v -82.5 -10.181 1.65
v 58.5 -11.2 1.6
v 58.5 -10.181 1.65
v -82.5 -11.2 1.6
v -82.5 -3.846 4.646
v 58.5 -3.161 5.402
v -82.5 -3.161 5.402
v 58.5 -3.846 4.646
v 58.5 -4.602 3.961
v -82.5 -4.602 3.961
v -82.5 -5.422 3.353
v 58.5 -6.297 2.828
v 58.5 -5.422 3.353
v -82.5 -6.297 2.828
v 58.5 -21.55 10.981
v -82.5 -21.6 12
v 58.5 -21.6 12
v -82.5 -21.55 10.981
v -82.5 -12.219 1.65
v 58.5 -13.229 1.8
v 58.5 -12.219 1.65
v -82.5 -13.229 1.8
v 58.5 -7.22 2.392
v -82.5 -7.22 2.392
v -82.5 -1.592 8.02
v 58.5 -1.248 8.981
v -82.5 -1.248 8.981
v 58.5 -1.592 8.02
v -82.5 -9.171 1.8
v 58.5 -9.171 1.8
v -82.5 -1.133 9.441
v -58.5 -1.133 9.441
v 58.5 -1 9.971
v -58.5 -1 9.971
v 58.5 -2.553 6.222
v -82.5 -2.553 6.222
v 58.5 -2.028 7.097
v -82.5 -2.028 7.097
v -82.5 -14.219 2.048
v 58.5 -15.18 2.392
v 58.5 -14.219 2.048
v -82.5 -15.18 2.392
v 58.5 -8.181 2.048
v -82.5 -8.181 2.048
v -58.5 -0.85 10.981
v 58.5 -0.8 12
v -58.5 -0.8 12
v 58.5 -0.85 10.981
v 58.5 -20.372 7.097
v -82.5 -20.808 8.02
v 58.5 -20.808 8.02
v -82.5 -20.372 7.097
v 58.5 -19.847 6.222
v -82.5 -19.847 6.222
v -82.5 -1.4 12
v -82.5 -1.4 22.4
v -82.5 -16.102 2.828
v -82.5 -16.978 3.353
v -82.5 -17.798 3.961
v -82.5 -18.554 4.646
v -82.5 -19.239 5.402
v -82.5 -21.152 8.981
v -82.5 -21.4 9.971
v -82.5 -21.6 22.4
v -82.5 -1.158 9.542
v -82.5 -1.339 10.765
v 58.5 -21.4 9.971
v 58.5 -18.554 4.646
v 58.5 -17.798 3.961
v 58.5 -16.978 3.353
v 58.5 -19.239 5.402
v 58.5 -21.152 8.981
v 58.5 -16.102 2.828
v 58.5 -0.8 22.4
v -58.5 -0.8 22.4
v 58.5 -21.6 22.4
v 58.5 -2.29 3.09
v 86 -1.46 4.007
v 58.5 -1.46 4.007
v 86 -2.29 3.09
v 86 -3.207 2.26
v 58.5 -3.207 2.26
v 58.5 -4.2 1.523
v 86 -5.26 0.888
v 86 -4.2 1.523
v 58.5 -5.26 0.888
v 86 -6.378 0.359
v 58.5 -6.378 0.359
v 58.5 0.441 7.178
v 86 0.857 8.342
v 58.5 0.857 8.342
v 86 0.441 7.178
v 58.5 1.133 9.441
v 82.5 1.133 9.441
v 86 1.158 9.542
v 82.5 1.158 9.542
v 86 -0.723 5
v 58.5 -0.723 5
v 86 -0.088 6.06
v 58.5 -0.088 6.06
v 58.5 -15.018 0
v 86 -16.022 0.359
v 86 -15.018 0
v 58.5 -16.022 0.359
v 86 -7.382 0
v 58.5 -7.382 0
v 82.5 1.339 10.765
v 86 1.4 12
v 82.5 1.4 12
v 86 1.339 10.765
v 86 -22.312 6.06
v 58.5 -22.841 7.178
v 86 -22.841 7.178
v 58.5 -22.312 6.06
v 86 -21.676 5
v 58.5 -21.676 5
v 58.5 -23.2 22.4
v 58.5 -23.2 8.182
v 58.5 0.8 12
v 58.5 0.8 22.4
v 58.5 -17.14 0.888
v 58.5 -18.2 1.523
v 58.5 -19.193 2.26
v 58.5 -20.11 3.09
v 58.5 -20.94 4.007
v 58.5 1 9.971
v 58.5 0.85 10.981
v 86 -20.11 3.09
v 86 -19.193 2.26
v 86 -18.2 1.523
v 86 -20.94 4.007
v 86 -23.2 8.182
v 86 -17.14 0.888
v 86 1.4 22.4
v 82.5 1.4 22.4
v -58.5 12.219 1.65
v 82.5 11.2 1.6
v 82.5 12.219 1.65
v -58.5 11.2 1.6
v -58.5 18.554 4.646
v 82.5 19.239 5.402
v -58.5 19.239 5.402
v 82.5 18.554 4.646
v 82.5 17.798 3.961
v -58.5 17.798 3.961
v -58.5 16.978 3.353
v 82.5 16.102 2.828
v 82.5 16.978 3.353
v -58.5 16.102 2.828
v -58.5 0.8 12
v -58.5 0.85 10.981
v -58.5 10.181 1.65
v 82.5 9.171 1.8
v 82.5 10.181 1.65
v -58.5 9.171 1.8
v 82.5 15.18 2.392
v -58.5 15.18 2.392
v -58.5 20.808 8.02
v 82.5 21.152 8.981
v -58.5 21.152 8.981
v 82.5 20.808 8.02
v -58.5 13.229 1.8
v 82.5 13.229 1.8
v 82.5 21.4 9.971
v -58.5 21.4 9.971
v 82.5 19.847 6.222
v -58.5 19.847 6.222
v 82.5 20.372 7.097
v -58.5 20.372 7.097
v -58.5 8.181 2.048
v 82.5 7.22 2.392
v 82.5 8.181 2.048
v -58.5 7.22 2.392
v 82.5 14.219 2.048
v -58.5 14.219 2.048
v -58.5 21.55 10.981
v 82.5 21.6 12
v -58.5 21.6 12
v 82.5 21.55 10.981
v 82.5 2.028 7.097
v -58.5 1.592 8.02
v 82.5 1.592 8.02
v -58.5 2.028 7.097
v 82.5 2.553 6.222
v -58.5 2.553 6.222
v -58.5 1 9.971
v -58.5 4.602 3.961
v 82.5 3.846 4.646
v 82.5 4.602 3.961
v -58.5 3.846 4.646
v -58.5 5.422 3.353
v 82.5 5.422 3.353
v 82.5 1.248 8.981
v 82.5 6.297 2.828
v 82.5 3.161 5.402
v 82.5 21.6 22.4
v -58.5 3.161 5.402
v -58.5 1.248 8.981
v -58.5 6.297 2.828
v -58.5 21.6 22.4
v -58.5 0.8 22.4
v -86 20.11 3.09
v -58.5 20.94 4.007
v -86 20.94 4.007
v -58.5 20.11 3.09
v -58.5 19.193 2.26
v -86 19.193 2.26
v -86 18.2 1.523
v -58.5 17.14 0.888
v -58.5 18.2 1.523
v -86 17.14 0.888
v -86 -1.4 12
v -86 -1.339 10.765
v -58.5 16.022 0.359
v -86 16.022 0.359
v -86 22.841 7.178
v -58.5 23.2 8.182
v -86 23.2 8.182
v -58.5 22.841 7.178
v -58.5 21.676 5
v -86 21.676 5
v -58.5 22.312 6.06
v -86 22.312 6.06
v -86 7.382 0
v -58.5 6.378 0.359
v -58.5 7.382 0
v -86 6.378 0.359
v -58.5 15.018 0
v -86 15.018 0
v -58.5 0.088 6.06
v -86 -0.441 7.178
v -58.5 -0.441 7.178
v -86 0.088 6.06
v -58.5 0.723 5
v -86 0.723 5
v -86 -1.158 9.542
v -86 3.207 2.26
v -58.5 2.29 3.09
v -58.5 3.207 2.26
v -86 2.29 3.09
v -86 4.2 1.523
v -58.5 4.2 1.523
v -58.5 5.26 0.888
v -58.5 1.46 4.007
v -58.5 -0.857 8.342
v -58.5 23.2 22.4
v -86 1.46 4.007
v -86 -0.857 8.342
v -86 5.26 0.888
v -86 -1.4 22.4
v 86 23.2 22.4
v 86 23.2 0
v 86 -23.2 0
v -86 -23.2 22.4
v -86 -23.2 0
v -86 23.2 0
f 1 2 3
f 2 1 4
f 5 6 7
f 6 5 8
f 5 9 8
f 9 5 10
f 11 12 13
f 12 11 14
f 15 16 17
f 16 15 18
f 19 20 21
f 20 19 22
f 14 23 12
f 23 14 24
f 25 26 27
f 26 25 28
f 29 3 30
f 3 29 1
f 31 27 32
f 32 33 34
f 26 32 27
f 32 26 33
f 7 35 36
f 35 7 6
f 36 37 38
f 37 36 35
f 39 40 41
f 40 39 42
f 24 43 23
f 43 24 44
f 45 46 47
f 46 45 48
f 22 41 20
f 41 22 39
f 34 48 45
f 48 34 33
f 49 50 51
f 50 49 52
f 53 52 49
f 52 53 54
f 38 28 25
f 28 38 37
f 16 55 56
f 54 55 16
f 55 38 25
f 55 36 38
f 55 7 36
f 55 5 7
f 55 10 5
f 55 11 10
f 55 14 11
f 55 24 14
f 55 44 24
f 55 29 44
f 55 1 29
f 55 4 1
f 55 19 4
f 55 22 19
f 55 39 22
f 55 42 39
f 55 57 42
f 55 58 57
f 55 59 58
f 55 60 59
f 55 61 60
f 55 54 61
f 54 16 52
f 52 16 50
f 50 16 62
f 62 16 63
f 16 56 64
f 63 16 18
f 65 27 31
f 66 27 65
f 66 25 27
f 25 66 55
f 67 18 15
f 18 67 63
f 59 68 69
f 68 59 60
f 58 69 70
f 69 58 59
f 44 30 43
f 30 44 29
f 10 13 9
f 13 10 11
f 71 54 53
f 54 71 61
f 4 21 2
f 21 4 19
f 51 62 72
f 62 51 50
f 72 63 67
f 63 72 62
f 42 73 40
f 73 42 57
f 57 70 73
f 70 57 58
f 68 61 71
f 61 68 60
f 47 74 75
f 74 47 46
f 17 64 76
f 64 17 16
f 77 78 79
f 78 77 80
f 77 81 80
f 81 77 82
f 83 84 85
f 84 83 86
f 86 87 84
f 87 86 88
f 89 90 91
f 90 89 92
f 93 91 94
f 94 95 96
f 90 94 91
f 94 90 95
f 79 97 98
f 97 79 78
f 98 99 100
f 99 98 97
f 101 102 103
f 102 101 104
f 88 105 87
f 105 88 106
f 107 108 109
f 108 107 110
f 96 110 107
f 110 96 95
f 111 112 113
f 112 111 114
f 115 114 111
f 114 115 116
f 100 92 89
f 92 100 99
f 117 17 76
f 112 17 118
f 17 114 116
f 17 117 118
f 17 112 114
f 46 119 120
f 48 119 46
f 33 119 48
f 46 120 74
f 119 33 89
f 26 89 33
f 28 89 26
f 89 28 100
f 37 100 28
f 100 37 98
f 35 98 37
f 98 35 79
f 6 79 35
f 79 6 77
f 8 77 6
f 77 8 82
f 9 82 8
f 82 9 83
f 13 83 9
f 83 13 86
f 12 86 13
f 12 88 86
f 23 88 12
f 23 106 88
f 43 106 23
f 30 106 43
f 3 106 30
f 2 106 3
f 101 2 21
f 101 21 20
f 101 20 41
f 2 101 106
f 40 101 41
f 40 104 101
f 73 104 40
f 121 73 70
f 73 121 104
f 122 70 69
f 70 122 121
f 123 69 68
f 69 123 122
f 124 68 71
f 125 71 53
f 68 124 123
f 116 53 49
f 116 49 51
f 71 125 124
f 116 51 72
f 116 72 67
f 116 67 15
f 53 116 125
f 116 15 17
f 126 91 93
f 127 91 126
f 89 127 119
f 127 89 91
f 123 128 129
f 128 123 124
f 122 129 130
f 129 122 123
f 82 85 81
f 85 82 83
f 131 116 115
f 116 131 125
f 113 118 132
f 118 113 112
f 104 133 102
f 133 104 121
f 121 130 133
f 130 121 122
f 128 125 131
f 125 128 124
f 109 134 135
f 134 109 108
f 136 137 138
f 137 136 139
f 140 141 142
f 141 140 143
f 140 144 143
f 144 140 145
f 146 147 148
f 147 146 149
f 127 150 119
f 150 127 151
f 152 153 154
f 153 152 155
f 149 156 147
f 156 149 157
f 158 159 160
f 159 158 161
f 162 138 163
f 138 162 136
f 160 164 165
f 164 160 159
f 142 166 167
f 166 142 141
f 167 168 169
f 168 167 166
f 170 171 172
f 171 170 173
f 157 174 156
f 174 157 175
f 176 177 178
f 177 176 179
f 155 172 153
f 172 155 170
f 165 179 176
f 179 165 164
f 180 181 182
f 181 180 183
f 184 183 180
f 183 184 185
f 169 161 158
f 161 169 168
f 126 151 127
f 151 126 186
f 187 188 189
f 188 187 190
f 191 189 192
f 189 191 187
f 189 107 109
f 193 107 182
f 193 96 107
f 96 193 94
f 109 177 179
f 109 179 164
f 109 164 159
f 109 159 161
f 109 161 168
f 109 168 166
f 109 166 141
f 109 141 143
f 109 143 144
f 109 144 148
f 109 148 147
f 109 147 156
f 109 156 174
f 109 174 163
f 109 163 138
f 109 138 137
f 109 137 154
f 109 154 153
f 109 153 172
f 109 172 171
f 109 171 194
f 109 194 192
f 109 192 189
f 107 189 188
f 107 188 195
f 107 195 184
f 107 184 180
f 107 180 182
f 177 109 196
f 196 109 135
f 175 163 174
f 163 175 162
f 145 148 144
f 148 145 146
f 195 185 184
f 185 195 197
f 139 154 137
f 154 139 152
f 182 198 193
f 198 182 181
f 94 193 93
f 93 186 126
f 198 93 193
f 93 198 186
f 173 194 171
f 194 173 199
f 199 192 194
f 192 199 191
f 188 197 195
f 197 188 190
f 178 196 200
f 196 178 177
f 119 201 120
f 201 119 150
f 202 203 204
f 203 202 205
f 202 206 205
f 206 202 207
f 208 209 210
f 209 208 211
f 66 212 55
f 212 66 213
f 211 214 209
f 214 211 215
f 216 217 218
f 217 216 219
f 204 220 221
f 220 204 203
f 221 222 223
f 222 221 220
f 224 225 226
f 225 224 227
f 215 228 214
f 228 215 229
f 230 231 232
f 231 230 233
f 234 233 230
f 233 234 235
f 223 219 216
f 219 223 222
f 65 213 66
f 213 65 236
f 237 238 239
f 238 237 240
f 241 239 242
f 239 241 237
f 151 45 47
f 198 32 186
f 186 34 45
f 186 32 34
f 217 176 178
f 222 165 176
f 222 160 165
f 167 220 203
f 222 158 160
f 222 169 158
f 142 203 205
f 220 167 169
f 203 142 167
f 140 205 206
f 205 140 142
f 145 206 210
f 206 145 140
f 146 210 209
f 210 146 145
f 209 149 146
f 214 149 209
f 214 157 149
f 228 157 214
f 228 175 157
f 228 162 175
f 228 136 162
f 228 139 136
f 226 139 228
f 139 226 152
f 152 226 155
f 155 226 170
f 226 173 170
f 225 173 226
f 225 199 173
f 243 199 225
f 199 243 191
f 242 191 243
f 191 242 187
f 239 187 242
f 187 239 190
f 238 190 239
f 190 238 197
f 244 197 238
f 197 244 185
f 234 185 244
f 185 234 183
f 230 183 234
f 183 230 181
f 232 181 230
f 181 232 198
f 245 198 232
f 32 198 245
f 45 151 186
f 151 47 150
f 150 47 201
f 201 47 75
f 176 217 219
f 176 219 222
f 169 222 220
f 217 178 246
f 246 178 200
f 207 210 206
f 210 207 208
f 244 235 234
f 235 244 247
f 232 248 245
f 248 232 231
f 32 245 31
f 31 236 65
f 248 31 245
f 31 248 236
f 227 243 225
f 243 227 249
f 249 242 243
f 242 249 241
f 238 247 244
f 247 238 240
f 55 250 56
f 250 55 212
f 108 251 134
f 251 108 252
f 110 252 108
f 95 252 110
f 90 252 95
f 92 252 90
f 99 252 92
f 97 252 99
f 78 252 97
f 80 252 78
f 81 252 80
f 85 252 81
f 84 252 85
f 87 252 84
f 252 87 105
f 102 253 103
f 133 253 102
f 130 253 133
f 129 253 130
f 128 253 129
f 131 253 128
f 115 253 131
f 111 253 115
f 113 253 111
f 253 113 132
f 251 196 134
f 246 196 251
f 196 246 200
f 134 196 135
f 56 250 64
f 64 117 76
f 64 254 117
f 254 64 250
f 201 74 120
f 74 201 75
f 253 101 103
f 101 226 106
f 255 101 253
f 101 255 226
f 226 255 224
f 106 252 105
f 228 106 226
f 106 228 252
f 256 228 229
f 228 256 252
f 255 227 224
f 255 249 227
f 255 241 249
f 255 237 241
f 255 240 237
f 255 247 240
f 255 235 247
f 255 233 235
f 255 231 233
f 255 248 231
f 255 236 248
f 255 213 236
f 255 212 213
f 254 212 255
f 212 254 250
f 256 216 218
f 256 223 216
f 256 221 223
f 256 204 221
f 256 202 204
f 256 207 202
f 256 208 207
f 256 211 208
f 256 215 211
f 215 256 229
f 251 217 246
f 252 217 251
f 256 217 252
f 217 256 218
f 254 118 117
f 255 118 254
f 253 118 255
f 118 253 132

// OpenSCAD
// file: common.scad
// ============================================================
// common.scad — shared parameters + modules for all designs
// LOCKED PEN SPECIFICATION (do not change)
// ============================================================
PEN_L = 165;      // pen length (mm)
PEN_A = 17;       // pen cross-section minor
PEN_B = 20;       // pen cross-section major (used as diameter envelope)
CLEAR = 0.4;      // fit clearance
WALL  = 1.6;      // minimum wall thickness

$fn = 64;

RCH = PEN_B/2 + CLEAR;   // = 10.4  channel radius
EPS = 0.01;

// --- open-top U trough cut, axis along X, centered at local origin -----------
// Removes a lower half-cylinder of radius r plus a full-width vertical slot
// upward, so the channel is open at the top (no ceiling -> no overhang).
module trough_cut(len, r=RCH, top=80) {
    union() {
        rotate([0,90,0]) cylinder(h=len, r=r, center=true);
        translate([0,0,top/2]) cube([len, 2*r, top], center=true); // slot upward
    }
}

// --- teardrop hole, axis along X, centered at local origin --------------------
// 45-degree self-supporting apex pointing +Z so a horizontal bore can print
// without support.
module teardrop_cut(len, r=RCH) {
    rotate([0,90,0])
        linear_extrude(height=len, center=true)
            union() {
                circle(r=r);
                polygon([[ 0.7071*r, 0.7071*r],
                         [ 0,         1.4142*r],
                         [-0.7071*r,  0.7071*r]]);
            }
}

// --- dial relief: widened open-top pocket at one channel end -----------------
// place at the +X or -X end of a channel so the dose dial clears / can be turned
module dial_relief(end_x, r=RCH+2.2, len=28, top=80) {
    translate([end_x, 0, 0]) trough_cut(len, r, top);
}
// main file
// d1_cradle — twin staggered open-top cradle troughs
// Family: stacked/clustered (2-wide). Pens drop in from the top.
// Creative variation: the two dial-relief pockets sit at OPPOSITE ends so the
// two dose dials never collide and the pens read like a staggered pair.
include <common.scad>

LBLK = 172;                       // < 177.8
PITCH = 2*RCH + WALL;             // 22.4 center-to-center
Y1 = -PITCH/2;                    // -11.2
Y2 =  PITCH/2;                    //  11.2
HBLK = WALL + 2*RCH;              // 22.4 (floor + full diameter)
WBLK = PITCH + 2*RCH + 2*WALL;    // 46.4  < 63.5
ZC = WALL + RCH;                  // channel center height

difference() {
    translate([0,0,HBLK/2]) cube([LBLK, WBLK, HBLK], center=true);

    // channel 1 + dial relief at +X end
    translate([0, Y1, ZC]) trough_cut(PEN_L);
    translate([0, Y1, ZC]) dial_relief( PEN_L/2 - 10);

    // channel 2 + dial relief at -X end (staggered)
    translate([0, Y2, ZC]) trough_cut(PEN_L);
    translate([0, Y2, ZC]) dial_relief(-(PEN_L/2 - 10));
}
